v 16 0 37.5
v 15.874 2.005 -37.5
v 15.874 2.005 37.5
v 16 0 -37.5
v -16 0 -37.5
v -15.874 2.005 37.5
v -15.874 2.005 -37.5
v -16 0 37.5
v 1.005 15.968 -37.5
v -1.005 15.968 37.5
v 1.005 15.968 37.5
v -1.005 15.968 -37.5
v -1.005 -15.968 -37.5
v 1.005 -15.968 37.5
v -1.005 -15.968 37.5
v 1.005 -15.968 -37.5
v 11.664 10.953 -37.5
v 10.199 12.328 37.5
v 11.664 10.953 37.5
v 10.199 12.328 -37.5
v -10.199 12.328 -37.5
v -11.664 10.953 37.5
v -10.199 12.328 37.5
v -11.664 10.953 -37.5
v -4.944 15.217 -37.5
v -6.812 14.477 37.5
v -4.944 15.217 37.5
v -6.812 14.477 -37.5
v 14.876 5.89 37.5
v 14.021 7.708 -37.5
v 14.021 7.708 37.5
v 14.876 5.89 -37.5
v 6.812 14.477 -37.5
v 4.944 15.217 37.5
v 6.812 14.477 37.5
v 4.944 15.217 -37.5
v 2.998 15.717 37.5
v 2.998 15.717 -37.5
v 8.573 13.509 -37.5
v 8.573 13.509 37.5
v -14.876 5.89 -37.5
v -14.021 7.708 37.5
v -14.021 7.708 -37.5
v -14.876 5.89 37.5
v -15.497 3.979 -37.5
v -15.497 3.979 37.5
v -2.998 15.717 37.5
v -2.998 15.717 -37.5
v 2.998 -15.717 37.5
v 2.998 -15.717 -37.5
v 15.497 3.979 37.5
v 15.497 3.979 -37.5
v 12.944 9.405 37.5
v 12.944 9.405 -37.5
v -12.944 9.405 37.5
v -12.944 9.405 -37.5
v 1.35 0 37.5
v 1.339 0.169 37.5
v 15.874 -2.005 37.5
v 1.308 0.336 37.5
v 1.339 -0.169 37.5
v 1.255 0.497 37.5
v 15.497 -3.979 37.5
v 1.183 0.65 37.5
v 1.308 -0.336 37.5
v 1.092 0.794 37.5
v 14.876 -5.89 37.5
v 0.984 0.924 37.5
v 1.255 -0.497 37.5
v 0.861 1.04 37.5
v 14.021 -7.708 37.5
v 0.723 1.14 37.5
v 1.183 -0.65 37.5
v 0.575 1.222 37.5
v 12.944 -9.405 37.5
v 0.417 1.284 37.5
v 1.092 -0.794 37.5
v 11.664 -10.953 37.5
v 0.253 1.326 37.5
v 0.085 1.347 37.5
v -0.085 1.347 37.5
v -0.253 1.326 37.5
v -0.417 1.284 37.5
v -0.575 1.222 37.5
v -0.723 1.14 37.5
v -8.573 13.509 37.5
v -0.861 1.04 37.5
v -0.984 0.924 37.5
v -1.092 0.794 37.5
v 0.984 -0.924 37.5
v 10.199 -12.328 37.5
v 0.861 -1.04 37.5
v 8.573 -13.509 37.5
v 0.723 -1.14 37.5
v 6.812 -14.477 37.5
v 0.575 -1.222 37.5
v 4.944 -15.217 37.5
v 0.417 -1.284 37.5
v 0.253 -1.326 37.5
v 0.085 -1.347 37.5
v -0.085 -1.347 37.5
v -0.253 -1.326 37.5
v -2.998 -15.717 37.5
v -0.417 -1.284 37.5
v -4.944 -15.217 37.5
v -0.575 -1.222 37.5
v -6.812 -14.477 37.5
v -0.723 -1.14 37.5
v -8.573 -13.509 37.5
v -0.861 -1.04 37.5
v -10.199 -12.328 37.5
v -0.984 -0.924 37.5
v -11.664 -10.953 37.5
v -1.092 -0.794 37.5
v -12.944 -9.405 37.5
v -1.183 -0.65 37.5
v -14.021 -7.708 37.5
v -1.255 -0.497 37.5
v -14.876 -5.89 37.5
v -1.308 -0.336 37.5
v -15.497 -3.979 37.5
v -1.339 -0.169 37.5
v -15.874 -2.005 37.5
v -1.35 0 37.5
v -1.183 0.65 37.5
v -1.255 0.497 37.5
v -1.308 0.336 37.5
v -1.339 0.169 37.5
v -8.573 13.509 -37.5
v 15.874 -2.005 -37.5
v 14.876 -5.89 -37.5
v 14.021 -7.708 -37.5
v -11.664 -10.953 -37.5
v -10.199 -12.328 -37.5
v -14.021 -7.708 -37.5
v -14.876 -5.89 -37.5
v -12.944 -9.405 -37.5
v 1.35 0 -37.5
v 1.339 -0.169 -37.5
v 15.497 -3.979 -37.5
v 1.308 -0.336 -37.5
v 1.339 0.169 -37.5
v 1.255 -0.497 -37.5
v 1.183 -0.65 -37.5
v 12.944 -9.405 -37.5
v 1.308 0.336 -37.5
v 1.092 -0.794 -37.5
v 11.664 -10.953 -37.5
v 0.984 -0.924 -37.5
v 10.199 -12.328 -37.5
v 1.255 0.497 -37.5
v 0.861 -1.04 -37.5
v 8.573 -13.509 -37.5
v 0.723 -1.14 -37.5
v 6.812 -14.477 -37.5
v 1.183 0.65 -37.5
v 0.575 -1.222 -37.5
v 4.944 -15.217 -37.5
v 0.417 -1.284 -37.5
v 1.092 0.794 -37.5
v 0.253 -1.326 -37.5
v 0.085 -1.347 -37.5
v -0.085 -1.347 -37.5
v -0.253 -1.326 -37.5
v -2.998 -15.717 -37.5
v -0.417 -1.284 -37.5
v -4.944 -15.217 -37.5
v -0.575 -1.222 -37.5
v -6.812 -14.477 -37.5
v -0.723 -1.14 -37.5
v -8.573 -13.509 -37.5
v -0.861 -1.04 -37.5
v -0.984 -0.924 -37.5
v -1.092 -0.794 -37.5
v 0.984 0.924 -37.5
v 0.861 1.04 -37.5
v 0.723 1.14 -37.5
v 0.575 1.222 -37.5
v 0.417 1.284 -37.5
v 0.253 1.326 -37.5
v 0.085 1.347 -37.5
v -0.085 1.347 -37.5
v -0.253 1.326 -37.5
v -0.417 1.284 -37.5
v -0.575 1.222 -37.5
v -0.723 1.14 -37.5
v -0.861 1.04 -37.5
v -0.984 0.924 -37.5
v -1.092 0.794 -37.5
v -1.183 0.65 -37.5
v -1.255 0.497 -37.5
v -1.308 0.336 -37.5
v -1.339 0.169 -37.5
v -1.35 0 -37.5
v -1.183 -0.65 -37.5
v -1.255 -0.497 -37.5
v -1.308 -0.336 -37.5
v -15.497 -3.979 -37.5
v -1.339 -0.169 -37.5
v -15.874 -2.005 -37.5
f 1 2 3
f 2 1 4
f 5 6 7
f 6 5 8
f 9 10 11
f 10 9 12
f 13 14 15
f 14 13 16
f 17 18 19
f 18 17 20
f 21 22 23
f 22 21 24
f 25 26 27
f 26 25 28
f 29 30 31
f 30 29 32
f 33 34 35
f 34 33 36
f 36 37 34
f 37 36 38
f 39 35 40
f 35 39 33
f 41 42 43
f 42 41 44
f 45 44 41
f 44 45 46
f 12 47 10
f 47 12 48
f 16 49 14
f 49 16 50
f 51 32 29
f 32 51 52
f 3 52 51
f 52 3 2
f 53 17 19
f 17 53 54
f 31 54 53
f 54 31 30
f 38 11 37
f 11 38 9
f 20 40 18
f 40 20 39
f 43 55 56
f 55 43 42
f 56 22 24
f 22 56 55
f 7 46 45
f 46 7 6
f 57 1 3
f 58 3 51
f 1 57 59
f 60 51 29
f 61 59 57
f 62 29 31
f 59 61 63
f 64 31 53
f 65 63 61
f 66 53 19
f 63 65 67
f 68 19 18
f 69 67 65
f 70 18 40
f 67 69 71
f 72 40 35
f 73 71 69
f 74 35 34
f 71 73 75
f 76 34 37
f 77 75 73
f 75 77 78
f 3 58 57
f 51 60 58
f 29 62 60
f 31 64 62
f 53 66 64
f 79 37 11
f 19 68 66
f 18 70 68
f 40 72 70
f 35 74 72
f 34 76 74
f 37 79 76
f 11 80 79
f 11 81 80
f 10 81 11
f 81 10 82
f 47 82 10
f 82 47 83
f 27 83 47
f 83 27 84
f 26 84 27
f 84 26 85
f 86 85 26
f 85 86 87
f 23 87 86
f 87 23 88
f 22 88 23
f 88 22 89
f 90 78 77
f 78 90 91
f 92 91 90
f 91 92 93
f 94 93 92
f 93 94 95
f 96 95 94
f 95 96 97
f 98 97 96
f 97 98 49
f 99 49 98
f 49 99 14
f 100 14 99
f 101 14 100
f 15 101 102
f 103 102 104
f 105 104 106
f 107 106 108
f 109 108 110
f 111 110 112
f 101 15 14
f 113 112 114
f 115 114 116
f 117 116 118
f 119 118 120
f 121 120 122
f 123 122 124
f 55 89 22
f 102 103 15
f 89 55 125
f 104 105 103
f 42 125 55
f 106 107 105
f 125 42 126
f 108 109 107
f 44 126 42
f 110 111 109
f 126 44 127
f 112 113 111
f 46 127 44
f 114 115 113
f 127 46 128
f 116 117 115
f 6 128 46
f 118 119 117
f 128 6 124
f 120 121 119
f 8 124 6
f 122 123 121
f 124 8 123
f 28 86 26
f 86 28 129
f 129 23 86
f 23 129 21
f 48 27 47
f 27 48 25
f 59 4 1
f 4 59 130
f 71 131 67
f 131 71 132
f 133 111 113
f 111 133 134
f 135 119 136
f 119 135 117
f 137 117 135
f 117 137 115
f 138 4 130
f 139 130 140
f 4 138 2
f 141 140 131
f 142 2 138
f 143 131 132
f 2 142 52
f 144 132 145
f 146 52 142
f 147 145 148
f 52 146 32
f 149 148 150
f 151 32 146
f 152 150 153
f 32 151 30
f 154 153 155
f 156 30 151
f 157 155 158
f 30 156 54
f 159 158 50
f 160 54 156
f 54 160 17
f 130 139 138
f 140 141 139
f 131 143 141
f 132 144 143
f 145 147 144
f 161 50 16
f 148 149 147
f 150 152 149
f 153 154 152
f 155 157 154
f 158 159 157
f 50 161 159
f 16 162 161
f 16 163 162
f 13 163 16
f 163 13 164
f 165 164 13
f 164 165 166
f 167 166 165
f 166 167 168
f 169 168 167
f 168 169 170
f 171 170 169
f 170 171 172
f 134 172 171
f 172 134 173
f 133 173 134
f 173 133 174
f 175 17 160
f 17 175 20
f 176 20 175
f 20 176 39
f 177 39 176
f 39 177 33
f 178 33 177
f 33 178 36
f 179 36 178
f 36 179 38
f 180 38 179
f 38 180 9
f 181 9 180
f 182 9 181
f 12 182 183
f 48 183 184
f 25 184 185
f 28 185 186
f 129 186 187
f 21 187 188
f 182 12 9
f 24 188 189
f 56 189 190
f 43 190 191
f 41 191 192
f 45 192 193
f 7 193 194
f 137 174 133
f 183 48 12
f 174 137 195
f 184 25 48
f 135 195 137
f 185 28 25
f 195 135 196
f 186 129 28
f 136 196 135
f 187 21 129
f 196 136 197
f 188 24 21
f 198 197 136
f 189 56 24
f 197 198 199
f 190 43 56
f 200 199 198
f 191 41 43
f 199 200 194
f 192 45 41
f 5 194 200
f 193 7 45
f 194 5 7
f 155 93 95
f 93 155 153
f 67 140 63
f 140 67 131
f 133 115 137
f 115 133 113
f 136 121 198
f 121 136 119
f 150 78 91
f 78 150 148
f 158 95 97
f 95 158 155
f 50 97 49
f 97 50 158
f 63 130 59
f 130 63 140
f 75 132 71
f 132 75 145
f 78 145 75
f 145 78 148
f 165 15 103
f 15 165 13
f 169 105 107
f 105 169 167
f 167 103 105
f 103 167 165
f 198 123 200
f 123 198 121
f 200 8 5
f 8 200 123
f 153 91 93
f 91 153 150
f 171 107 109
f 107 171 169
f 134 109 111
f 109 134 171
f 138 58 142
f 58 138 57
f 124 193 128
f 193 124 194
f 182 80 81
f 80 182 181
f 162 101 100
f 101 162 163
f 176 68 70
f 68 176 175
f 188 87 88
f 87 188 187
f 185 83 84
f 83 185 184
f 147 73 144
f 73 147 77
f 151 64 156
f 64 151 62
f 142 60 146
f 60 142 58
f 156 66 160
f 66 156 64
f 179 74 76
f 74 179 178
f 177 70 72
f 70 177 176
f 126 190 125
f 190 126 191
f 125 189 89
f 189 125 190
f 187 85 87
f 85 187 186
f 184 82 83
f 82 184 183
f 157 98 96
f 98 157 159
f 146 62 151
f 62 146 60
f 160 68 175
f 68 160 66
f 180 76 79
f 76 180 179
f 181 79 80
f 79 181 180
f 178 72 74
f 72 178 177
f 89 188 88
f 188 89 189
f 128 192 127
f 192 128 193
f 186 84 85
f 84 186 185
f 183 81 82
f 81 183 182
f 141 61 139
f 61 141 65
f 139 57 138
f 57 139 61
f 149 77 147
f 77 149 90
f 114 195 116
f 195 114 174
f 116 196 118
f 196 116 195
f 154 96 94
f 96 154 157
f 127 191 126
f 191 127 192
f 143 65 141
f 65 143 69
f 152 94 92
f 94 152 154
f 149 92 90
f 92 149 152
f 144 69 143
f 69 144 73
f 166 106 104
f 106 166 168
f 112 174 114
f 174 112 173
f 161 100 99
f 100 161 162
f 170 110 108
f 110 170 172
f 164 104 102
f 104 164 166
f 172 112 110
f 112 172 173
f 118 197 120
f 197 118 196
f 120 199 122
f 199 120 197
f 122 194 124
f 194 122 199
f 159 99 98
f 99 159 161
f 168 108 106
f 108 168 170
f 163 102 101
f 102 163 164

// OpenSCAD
$fn = 50;


difference() {
	union() {
		translate(v = [0, 0, -37.5000000000]) {
			cylinder(h = 75, r = 16.0000000000);
		}
	}
	union() {
		translate(v = [0, 0, -100.0000000000]) {
			cylinder(h = 200, r = 1.3500000000);
		}
	}
}
